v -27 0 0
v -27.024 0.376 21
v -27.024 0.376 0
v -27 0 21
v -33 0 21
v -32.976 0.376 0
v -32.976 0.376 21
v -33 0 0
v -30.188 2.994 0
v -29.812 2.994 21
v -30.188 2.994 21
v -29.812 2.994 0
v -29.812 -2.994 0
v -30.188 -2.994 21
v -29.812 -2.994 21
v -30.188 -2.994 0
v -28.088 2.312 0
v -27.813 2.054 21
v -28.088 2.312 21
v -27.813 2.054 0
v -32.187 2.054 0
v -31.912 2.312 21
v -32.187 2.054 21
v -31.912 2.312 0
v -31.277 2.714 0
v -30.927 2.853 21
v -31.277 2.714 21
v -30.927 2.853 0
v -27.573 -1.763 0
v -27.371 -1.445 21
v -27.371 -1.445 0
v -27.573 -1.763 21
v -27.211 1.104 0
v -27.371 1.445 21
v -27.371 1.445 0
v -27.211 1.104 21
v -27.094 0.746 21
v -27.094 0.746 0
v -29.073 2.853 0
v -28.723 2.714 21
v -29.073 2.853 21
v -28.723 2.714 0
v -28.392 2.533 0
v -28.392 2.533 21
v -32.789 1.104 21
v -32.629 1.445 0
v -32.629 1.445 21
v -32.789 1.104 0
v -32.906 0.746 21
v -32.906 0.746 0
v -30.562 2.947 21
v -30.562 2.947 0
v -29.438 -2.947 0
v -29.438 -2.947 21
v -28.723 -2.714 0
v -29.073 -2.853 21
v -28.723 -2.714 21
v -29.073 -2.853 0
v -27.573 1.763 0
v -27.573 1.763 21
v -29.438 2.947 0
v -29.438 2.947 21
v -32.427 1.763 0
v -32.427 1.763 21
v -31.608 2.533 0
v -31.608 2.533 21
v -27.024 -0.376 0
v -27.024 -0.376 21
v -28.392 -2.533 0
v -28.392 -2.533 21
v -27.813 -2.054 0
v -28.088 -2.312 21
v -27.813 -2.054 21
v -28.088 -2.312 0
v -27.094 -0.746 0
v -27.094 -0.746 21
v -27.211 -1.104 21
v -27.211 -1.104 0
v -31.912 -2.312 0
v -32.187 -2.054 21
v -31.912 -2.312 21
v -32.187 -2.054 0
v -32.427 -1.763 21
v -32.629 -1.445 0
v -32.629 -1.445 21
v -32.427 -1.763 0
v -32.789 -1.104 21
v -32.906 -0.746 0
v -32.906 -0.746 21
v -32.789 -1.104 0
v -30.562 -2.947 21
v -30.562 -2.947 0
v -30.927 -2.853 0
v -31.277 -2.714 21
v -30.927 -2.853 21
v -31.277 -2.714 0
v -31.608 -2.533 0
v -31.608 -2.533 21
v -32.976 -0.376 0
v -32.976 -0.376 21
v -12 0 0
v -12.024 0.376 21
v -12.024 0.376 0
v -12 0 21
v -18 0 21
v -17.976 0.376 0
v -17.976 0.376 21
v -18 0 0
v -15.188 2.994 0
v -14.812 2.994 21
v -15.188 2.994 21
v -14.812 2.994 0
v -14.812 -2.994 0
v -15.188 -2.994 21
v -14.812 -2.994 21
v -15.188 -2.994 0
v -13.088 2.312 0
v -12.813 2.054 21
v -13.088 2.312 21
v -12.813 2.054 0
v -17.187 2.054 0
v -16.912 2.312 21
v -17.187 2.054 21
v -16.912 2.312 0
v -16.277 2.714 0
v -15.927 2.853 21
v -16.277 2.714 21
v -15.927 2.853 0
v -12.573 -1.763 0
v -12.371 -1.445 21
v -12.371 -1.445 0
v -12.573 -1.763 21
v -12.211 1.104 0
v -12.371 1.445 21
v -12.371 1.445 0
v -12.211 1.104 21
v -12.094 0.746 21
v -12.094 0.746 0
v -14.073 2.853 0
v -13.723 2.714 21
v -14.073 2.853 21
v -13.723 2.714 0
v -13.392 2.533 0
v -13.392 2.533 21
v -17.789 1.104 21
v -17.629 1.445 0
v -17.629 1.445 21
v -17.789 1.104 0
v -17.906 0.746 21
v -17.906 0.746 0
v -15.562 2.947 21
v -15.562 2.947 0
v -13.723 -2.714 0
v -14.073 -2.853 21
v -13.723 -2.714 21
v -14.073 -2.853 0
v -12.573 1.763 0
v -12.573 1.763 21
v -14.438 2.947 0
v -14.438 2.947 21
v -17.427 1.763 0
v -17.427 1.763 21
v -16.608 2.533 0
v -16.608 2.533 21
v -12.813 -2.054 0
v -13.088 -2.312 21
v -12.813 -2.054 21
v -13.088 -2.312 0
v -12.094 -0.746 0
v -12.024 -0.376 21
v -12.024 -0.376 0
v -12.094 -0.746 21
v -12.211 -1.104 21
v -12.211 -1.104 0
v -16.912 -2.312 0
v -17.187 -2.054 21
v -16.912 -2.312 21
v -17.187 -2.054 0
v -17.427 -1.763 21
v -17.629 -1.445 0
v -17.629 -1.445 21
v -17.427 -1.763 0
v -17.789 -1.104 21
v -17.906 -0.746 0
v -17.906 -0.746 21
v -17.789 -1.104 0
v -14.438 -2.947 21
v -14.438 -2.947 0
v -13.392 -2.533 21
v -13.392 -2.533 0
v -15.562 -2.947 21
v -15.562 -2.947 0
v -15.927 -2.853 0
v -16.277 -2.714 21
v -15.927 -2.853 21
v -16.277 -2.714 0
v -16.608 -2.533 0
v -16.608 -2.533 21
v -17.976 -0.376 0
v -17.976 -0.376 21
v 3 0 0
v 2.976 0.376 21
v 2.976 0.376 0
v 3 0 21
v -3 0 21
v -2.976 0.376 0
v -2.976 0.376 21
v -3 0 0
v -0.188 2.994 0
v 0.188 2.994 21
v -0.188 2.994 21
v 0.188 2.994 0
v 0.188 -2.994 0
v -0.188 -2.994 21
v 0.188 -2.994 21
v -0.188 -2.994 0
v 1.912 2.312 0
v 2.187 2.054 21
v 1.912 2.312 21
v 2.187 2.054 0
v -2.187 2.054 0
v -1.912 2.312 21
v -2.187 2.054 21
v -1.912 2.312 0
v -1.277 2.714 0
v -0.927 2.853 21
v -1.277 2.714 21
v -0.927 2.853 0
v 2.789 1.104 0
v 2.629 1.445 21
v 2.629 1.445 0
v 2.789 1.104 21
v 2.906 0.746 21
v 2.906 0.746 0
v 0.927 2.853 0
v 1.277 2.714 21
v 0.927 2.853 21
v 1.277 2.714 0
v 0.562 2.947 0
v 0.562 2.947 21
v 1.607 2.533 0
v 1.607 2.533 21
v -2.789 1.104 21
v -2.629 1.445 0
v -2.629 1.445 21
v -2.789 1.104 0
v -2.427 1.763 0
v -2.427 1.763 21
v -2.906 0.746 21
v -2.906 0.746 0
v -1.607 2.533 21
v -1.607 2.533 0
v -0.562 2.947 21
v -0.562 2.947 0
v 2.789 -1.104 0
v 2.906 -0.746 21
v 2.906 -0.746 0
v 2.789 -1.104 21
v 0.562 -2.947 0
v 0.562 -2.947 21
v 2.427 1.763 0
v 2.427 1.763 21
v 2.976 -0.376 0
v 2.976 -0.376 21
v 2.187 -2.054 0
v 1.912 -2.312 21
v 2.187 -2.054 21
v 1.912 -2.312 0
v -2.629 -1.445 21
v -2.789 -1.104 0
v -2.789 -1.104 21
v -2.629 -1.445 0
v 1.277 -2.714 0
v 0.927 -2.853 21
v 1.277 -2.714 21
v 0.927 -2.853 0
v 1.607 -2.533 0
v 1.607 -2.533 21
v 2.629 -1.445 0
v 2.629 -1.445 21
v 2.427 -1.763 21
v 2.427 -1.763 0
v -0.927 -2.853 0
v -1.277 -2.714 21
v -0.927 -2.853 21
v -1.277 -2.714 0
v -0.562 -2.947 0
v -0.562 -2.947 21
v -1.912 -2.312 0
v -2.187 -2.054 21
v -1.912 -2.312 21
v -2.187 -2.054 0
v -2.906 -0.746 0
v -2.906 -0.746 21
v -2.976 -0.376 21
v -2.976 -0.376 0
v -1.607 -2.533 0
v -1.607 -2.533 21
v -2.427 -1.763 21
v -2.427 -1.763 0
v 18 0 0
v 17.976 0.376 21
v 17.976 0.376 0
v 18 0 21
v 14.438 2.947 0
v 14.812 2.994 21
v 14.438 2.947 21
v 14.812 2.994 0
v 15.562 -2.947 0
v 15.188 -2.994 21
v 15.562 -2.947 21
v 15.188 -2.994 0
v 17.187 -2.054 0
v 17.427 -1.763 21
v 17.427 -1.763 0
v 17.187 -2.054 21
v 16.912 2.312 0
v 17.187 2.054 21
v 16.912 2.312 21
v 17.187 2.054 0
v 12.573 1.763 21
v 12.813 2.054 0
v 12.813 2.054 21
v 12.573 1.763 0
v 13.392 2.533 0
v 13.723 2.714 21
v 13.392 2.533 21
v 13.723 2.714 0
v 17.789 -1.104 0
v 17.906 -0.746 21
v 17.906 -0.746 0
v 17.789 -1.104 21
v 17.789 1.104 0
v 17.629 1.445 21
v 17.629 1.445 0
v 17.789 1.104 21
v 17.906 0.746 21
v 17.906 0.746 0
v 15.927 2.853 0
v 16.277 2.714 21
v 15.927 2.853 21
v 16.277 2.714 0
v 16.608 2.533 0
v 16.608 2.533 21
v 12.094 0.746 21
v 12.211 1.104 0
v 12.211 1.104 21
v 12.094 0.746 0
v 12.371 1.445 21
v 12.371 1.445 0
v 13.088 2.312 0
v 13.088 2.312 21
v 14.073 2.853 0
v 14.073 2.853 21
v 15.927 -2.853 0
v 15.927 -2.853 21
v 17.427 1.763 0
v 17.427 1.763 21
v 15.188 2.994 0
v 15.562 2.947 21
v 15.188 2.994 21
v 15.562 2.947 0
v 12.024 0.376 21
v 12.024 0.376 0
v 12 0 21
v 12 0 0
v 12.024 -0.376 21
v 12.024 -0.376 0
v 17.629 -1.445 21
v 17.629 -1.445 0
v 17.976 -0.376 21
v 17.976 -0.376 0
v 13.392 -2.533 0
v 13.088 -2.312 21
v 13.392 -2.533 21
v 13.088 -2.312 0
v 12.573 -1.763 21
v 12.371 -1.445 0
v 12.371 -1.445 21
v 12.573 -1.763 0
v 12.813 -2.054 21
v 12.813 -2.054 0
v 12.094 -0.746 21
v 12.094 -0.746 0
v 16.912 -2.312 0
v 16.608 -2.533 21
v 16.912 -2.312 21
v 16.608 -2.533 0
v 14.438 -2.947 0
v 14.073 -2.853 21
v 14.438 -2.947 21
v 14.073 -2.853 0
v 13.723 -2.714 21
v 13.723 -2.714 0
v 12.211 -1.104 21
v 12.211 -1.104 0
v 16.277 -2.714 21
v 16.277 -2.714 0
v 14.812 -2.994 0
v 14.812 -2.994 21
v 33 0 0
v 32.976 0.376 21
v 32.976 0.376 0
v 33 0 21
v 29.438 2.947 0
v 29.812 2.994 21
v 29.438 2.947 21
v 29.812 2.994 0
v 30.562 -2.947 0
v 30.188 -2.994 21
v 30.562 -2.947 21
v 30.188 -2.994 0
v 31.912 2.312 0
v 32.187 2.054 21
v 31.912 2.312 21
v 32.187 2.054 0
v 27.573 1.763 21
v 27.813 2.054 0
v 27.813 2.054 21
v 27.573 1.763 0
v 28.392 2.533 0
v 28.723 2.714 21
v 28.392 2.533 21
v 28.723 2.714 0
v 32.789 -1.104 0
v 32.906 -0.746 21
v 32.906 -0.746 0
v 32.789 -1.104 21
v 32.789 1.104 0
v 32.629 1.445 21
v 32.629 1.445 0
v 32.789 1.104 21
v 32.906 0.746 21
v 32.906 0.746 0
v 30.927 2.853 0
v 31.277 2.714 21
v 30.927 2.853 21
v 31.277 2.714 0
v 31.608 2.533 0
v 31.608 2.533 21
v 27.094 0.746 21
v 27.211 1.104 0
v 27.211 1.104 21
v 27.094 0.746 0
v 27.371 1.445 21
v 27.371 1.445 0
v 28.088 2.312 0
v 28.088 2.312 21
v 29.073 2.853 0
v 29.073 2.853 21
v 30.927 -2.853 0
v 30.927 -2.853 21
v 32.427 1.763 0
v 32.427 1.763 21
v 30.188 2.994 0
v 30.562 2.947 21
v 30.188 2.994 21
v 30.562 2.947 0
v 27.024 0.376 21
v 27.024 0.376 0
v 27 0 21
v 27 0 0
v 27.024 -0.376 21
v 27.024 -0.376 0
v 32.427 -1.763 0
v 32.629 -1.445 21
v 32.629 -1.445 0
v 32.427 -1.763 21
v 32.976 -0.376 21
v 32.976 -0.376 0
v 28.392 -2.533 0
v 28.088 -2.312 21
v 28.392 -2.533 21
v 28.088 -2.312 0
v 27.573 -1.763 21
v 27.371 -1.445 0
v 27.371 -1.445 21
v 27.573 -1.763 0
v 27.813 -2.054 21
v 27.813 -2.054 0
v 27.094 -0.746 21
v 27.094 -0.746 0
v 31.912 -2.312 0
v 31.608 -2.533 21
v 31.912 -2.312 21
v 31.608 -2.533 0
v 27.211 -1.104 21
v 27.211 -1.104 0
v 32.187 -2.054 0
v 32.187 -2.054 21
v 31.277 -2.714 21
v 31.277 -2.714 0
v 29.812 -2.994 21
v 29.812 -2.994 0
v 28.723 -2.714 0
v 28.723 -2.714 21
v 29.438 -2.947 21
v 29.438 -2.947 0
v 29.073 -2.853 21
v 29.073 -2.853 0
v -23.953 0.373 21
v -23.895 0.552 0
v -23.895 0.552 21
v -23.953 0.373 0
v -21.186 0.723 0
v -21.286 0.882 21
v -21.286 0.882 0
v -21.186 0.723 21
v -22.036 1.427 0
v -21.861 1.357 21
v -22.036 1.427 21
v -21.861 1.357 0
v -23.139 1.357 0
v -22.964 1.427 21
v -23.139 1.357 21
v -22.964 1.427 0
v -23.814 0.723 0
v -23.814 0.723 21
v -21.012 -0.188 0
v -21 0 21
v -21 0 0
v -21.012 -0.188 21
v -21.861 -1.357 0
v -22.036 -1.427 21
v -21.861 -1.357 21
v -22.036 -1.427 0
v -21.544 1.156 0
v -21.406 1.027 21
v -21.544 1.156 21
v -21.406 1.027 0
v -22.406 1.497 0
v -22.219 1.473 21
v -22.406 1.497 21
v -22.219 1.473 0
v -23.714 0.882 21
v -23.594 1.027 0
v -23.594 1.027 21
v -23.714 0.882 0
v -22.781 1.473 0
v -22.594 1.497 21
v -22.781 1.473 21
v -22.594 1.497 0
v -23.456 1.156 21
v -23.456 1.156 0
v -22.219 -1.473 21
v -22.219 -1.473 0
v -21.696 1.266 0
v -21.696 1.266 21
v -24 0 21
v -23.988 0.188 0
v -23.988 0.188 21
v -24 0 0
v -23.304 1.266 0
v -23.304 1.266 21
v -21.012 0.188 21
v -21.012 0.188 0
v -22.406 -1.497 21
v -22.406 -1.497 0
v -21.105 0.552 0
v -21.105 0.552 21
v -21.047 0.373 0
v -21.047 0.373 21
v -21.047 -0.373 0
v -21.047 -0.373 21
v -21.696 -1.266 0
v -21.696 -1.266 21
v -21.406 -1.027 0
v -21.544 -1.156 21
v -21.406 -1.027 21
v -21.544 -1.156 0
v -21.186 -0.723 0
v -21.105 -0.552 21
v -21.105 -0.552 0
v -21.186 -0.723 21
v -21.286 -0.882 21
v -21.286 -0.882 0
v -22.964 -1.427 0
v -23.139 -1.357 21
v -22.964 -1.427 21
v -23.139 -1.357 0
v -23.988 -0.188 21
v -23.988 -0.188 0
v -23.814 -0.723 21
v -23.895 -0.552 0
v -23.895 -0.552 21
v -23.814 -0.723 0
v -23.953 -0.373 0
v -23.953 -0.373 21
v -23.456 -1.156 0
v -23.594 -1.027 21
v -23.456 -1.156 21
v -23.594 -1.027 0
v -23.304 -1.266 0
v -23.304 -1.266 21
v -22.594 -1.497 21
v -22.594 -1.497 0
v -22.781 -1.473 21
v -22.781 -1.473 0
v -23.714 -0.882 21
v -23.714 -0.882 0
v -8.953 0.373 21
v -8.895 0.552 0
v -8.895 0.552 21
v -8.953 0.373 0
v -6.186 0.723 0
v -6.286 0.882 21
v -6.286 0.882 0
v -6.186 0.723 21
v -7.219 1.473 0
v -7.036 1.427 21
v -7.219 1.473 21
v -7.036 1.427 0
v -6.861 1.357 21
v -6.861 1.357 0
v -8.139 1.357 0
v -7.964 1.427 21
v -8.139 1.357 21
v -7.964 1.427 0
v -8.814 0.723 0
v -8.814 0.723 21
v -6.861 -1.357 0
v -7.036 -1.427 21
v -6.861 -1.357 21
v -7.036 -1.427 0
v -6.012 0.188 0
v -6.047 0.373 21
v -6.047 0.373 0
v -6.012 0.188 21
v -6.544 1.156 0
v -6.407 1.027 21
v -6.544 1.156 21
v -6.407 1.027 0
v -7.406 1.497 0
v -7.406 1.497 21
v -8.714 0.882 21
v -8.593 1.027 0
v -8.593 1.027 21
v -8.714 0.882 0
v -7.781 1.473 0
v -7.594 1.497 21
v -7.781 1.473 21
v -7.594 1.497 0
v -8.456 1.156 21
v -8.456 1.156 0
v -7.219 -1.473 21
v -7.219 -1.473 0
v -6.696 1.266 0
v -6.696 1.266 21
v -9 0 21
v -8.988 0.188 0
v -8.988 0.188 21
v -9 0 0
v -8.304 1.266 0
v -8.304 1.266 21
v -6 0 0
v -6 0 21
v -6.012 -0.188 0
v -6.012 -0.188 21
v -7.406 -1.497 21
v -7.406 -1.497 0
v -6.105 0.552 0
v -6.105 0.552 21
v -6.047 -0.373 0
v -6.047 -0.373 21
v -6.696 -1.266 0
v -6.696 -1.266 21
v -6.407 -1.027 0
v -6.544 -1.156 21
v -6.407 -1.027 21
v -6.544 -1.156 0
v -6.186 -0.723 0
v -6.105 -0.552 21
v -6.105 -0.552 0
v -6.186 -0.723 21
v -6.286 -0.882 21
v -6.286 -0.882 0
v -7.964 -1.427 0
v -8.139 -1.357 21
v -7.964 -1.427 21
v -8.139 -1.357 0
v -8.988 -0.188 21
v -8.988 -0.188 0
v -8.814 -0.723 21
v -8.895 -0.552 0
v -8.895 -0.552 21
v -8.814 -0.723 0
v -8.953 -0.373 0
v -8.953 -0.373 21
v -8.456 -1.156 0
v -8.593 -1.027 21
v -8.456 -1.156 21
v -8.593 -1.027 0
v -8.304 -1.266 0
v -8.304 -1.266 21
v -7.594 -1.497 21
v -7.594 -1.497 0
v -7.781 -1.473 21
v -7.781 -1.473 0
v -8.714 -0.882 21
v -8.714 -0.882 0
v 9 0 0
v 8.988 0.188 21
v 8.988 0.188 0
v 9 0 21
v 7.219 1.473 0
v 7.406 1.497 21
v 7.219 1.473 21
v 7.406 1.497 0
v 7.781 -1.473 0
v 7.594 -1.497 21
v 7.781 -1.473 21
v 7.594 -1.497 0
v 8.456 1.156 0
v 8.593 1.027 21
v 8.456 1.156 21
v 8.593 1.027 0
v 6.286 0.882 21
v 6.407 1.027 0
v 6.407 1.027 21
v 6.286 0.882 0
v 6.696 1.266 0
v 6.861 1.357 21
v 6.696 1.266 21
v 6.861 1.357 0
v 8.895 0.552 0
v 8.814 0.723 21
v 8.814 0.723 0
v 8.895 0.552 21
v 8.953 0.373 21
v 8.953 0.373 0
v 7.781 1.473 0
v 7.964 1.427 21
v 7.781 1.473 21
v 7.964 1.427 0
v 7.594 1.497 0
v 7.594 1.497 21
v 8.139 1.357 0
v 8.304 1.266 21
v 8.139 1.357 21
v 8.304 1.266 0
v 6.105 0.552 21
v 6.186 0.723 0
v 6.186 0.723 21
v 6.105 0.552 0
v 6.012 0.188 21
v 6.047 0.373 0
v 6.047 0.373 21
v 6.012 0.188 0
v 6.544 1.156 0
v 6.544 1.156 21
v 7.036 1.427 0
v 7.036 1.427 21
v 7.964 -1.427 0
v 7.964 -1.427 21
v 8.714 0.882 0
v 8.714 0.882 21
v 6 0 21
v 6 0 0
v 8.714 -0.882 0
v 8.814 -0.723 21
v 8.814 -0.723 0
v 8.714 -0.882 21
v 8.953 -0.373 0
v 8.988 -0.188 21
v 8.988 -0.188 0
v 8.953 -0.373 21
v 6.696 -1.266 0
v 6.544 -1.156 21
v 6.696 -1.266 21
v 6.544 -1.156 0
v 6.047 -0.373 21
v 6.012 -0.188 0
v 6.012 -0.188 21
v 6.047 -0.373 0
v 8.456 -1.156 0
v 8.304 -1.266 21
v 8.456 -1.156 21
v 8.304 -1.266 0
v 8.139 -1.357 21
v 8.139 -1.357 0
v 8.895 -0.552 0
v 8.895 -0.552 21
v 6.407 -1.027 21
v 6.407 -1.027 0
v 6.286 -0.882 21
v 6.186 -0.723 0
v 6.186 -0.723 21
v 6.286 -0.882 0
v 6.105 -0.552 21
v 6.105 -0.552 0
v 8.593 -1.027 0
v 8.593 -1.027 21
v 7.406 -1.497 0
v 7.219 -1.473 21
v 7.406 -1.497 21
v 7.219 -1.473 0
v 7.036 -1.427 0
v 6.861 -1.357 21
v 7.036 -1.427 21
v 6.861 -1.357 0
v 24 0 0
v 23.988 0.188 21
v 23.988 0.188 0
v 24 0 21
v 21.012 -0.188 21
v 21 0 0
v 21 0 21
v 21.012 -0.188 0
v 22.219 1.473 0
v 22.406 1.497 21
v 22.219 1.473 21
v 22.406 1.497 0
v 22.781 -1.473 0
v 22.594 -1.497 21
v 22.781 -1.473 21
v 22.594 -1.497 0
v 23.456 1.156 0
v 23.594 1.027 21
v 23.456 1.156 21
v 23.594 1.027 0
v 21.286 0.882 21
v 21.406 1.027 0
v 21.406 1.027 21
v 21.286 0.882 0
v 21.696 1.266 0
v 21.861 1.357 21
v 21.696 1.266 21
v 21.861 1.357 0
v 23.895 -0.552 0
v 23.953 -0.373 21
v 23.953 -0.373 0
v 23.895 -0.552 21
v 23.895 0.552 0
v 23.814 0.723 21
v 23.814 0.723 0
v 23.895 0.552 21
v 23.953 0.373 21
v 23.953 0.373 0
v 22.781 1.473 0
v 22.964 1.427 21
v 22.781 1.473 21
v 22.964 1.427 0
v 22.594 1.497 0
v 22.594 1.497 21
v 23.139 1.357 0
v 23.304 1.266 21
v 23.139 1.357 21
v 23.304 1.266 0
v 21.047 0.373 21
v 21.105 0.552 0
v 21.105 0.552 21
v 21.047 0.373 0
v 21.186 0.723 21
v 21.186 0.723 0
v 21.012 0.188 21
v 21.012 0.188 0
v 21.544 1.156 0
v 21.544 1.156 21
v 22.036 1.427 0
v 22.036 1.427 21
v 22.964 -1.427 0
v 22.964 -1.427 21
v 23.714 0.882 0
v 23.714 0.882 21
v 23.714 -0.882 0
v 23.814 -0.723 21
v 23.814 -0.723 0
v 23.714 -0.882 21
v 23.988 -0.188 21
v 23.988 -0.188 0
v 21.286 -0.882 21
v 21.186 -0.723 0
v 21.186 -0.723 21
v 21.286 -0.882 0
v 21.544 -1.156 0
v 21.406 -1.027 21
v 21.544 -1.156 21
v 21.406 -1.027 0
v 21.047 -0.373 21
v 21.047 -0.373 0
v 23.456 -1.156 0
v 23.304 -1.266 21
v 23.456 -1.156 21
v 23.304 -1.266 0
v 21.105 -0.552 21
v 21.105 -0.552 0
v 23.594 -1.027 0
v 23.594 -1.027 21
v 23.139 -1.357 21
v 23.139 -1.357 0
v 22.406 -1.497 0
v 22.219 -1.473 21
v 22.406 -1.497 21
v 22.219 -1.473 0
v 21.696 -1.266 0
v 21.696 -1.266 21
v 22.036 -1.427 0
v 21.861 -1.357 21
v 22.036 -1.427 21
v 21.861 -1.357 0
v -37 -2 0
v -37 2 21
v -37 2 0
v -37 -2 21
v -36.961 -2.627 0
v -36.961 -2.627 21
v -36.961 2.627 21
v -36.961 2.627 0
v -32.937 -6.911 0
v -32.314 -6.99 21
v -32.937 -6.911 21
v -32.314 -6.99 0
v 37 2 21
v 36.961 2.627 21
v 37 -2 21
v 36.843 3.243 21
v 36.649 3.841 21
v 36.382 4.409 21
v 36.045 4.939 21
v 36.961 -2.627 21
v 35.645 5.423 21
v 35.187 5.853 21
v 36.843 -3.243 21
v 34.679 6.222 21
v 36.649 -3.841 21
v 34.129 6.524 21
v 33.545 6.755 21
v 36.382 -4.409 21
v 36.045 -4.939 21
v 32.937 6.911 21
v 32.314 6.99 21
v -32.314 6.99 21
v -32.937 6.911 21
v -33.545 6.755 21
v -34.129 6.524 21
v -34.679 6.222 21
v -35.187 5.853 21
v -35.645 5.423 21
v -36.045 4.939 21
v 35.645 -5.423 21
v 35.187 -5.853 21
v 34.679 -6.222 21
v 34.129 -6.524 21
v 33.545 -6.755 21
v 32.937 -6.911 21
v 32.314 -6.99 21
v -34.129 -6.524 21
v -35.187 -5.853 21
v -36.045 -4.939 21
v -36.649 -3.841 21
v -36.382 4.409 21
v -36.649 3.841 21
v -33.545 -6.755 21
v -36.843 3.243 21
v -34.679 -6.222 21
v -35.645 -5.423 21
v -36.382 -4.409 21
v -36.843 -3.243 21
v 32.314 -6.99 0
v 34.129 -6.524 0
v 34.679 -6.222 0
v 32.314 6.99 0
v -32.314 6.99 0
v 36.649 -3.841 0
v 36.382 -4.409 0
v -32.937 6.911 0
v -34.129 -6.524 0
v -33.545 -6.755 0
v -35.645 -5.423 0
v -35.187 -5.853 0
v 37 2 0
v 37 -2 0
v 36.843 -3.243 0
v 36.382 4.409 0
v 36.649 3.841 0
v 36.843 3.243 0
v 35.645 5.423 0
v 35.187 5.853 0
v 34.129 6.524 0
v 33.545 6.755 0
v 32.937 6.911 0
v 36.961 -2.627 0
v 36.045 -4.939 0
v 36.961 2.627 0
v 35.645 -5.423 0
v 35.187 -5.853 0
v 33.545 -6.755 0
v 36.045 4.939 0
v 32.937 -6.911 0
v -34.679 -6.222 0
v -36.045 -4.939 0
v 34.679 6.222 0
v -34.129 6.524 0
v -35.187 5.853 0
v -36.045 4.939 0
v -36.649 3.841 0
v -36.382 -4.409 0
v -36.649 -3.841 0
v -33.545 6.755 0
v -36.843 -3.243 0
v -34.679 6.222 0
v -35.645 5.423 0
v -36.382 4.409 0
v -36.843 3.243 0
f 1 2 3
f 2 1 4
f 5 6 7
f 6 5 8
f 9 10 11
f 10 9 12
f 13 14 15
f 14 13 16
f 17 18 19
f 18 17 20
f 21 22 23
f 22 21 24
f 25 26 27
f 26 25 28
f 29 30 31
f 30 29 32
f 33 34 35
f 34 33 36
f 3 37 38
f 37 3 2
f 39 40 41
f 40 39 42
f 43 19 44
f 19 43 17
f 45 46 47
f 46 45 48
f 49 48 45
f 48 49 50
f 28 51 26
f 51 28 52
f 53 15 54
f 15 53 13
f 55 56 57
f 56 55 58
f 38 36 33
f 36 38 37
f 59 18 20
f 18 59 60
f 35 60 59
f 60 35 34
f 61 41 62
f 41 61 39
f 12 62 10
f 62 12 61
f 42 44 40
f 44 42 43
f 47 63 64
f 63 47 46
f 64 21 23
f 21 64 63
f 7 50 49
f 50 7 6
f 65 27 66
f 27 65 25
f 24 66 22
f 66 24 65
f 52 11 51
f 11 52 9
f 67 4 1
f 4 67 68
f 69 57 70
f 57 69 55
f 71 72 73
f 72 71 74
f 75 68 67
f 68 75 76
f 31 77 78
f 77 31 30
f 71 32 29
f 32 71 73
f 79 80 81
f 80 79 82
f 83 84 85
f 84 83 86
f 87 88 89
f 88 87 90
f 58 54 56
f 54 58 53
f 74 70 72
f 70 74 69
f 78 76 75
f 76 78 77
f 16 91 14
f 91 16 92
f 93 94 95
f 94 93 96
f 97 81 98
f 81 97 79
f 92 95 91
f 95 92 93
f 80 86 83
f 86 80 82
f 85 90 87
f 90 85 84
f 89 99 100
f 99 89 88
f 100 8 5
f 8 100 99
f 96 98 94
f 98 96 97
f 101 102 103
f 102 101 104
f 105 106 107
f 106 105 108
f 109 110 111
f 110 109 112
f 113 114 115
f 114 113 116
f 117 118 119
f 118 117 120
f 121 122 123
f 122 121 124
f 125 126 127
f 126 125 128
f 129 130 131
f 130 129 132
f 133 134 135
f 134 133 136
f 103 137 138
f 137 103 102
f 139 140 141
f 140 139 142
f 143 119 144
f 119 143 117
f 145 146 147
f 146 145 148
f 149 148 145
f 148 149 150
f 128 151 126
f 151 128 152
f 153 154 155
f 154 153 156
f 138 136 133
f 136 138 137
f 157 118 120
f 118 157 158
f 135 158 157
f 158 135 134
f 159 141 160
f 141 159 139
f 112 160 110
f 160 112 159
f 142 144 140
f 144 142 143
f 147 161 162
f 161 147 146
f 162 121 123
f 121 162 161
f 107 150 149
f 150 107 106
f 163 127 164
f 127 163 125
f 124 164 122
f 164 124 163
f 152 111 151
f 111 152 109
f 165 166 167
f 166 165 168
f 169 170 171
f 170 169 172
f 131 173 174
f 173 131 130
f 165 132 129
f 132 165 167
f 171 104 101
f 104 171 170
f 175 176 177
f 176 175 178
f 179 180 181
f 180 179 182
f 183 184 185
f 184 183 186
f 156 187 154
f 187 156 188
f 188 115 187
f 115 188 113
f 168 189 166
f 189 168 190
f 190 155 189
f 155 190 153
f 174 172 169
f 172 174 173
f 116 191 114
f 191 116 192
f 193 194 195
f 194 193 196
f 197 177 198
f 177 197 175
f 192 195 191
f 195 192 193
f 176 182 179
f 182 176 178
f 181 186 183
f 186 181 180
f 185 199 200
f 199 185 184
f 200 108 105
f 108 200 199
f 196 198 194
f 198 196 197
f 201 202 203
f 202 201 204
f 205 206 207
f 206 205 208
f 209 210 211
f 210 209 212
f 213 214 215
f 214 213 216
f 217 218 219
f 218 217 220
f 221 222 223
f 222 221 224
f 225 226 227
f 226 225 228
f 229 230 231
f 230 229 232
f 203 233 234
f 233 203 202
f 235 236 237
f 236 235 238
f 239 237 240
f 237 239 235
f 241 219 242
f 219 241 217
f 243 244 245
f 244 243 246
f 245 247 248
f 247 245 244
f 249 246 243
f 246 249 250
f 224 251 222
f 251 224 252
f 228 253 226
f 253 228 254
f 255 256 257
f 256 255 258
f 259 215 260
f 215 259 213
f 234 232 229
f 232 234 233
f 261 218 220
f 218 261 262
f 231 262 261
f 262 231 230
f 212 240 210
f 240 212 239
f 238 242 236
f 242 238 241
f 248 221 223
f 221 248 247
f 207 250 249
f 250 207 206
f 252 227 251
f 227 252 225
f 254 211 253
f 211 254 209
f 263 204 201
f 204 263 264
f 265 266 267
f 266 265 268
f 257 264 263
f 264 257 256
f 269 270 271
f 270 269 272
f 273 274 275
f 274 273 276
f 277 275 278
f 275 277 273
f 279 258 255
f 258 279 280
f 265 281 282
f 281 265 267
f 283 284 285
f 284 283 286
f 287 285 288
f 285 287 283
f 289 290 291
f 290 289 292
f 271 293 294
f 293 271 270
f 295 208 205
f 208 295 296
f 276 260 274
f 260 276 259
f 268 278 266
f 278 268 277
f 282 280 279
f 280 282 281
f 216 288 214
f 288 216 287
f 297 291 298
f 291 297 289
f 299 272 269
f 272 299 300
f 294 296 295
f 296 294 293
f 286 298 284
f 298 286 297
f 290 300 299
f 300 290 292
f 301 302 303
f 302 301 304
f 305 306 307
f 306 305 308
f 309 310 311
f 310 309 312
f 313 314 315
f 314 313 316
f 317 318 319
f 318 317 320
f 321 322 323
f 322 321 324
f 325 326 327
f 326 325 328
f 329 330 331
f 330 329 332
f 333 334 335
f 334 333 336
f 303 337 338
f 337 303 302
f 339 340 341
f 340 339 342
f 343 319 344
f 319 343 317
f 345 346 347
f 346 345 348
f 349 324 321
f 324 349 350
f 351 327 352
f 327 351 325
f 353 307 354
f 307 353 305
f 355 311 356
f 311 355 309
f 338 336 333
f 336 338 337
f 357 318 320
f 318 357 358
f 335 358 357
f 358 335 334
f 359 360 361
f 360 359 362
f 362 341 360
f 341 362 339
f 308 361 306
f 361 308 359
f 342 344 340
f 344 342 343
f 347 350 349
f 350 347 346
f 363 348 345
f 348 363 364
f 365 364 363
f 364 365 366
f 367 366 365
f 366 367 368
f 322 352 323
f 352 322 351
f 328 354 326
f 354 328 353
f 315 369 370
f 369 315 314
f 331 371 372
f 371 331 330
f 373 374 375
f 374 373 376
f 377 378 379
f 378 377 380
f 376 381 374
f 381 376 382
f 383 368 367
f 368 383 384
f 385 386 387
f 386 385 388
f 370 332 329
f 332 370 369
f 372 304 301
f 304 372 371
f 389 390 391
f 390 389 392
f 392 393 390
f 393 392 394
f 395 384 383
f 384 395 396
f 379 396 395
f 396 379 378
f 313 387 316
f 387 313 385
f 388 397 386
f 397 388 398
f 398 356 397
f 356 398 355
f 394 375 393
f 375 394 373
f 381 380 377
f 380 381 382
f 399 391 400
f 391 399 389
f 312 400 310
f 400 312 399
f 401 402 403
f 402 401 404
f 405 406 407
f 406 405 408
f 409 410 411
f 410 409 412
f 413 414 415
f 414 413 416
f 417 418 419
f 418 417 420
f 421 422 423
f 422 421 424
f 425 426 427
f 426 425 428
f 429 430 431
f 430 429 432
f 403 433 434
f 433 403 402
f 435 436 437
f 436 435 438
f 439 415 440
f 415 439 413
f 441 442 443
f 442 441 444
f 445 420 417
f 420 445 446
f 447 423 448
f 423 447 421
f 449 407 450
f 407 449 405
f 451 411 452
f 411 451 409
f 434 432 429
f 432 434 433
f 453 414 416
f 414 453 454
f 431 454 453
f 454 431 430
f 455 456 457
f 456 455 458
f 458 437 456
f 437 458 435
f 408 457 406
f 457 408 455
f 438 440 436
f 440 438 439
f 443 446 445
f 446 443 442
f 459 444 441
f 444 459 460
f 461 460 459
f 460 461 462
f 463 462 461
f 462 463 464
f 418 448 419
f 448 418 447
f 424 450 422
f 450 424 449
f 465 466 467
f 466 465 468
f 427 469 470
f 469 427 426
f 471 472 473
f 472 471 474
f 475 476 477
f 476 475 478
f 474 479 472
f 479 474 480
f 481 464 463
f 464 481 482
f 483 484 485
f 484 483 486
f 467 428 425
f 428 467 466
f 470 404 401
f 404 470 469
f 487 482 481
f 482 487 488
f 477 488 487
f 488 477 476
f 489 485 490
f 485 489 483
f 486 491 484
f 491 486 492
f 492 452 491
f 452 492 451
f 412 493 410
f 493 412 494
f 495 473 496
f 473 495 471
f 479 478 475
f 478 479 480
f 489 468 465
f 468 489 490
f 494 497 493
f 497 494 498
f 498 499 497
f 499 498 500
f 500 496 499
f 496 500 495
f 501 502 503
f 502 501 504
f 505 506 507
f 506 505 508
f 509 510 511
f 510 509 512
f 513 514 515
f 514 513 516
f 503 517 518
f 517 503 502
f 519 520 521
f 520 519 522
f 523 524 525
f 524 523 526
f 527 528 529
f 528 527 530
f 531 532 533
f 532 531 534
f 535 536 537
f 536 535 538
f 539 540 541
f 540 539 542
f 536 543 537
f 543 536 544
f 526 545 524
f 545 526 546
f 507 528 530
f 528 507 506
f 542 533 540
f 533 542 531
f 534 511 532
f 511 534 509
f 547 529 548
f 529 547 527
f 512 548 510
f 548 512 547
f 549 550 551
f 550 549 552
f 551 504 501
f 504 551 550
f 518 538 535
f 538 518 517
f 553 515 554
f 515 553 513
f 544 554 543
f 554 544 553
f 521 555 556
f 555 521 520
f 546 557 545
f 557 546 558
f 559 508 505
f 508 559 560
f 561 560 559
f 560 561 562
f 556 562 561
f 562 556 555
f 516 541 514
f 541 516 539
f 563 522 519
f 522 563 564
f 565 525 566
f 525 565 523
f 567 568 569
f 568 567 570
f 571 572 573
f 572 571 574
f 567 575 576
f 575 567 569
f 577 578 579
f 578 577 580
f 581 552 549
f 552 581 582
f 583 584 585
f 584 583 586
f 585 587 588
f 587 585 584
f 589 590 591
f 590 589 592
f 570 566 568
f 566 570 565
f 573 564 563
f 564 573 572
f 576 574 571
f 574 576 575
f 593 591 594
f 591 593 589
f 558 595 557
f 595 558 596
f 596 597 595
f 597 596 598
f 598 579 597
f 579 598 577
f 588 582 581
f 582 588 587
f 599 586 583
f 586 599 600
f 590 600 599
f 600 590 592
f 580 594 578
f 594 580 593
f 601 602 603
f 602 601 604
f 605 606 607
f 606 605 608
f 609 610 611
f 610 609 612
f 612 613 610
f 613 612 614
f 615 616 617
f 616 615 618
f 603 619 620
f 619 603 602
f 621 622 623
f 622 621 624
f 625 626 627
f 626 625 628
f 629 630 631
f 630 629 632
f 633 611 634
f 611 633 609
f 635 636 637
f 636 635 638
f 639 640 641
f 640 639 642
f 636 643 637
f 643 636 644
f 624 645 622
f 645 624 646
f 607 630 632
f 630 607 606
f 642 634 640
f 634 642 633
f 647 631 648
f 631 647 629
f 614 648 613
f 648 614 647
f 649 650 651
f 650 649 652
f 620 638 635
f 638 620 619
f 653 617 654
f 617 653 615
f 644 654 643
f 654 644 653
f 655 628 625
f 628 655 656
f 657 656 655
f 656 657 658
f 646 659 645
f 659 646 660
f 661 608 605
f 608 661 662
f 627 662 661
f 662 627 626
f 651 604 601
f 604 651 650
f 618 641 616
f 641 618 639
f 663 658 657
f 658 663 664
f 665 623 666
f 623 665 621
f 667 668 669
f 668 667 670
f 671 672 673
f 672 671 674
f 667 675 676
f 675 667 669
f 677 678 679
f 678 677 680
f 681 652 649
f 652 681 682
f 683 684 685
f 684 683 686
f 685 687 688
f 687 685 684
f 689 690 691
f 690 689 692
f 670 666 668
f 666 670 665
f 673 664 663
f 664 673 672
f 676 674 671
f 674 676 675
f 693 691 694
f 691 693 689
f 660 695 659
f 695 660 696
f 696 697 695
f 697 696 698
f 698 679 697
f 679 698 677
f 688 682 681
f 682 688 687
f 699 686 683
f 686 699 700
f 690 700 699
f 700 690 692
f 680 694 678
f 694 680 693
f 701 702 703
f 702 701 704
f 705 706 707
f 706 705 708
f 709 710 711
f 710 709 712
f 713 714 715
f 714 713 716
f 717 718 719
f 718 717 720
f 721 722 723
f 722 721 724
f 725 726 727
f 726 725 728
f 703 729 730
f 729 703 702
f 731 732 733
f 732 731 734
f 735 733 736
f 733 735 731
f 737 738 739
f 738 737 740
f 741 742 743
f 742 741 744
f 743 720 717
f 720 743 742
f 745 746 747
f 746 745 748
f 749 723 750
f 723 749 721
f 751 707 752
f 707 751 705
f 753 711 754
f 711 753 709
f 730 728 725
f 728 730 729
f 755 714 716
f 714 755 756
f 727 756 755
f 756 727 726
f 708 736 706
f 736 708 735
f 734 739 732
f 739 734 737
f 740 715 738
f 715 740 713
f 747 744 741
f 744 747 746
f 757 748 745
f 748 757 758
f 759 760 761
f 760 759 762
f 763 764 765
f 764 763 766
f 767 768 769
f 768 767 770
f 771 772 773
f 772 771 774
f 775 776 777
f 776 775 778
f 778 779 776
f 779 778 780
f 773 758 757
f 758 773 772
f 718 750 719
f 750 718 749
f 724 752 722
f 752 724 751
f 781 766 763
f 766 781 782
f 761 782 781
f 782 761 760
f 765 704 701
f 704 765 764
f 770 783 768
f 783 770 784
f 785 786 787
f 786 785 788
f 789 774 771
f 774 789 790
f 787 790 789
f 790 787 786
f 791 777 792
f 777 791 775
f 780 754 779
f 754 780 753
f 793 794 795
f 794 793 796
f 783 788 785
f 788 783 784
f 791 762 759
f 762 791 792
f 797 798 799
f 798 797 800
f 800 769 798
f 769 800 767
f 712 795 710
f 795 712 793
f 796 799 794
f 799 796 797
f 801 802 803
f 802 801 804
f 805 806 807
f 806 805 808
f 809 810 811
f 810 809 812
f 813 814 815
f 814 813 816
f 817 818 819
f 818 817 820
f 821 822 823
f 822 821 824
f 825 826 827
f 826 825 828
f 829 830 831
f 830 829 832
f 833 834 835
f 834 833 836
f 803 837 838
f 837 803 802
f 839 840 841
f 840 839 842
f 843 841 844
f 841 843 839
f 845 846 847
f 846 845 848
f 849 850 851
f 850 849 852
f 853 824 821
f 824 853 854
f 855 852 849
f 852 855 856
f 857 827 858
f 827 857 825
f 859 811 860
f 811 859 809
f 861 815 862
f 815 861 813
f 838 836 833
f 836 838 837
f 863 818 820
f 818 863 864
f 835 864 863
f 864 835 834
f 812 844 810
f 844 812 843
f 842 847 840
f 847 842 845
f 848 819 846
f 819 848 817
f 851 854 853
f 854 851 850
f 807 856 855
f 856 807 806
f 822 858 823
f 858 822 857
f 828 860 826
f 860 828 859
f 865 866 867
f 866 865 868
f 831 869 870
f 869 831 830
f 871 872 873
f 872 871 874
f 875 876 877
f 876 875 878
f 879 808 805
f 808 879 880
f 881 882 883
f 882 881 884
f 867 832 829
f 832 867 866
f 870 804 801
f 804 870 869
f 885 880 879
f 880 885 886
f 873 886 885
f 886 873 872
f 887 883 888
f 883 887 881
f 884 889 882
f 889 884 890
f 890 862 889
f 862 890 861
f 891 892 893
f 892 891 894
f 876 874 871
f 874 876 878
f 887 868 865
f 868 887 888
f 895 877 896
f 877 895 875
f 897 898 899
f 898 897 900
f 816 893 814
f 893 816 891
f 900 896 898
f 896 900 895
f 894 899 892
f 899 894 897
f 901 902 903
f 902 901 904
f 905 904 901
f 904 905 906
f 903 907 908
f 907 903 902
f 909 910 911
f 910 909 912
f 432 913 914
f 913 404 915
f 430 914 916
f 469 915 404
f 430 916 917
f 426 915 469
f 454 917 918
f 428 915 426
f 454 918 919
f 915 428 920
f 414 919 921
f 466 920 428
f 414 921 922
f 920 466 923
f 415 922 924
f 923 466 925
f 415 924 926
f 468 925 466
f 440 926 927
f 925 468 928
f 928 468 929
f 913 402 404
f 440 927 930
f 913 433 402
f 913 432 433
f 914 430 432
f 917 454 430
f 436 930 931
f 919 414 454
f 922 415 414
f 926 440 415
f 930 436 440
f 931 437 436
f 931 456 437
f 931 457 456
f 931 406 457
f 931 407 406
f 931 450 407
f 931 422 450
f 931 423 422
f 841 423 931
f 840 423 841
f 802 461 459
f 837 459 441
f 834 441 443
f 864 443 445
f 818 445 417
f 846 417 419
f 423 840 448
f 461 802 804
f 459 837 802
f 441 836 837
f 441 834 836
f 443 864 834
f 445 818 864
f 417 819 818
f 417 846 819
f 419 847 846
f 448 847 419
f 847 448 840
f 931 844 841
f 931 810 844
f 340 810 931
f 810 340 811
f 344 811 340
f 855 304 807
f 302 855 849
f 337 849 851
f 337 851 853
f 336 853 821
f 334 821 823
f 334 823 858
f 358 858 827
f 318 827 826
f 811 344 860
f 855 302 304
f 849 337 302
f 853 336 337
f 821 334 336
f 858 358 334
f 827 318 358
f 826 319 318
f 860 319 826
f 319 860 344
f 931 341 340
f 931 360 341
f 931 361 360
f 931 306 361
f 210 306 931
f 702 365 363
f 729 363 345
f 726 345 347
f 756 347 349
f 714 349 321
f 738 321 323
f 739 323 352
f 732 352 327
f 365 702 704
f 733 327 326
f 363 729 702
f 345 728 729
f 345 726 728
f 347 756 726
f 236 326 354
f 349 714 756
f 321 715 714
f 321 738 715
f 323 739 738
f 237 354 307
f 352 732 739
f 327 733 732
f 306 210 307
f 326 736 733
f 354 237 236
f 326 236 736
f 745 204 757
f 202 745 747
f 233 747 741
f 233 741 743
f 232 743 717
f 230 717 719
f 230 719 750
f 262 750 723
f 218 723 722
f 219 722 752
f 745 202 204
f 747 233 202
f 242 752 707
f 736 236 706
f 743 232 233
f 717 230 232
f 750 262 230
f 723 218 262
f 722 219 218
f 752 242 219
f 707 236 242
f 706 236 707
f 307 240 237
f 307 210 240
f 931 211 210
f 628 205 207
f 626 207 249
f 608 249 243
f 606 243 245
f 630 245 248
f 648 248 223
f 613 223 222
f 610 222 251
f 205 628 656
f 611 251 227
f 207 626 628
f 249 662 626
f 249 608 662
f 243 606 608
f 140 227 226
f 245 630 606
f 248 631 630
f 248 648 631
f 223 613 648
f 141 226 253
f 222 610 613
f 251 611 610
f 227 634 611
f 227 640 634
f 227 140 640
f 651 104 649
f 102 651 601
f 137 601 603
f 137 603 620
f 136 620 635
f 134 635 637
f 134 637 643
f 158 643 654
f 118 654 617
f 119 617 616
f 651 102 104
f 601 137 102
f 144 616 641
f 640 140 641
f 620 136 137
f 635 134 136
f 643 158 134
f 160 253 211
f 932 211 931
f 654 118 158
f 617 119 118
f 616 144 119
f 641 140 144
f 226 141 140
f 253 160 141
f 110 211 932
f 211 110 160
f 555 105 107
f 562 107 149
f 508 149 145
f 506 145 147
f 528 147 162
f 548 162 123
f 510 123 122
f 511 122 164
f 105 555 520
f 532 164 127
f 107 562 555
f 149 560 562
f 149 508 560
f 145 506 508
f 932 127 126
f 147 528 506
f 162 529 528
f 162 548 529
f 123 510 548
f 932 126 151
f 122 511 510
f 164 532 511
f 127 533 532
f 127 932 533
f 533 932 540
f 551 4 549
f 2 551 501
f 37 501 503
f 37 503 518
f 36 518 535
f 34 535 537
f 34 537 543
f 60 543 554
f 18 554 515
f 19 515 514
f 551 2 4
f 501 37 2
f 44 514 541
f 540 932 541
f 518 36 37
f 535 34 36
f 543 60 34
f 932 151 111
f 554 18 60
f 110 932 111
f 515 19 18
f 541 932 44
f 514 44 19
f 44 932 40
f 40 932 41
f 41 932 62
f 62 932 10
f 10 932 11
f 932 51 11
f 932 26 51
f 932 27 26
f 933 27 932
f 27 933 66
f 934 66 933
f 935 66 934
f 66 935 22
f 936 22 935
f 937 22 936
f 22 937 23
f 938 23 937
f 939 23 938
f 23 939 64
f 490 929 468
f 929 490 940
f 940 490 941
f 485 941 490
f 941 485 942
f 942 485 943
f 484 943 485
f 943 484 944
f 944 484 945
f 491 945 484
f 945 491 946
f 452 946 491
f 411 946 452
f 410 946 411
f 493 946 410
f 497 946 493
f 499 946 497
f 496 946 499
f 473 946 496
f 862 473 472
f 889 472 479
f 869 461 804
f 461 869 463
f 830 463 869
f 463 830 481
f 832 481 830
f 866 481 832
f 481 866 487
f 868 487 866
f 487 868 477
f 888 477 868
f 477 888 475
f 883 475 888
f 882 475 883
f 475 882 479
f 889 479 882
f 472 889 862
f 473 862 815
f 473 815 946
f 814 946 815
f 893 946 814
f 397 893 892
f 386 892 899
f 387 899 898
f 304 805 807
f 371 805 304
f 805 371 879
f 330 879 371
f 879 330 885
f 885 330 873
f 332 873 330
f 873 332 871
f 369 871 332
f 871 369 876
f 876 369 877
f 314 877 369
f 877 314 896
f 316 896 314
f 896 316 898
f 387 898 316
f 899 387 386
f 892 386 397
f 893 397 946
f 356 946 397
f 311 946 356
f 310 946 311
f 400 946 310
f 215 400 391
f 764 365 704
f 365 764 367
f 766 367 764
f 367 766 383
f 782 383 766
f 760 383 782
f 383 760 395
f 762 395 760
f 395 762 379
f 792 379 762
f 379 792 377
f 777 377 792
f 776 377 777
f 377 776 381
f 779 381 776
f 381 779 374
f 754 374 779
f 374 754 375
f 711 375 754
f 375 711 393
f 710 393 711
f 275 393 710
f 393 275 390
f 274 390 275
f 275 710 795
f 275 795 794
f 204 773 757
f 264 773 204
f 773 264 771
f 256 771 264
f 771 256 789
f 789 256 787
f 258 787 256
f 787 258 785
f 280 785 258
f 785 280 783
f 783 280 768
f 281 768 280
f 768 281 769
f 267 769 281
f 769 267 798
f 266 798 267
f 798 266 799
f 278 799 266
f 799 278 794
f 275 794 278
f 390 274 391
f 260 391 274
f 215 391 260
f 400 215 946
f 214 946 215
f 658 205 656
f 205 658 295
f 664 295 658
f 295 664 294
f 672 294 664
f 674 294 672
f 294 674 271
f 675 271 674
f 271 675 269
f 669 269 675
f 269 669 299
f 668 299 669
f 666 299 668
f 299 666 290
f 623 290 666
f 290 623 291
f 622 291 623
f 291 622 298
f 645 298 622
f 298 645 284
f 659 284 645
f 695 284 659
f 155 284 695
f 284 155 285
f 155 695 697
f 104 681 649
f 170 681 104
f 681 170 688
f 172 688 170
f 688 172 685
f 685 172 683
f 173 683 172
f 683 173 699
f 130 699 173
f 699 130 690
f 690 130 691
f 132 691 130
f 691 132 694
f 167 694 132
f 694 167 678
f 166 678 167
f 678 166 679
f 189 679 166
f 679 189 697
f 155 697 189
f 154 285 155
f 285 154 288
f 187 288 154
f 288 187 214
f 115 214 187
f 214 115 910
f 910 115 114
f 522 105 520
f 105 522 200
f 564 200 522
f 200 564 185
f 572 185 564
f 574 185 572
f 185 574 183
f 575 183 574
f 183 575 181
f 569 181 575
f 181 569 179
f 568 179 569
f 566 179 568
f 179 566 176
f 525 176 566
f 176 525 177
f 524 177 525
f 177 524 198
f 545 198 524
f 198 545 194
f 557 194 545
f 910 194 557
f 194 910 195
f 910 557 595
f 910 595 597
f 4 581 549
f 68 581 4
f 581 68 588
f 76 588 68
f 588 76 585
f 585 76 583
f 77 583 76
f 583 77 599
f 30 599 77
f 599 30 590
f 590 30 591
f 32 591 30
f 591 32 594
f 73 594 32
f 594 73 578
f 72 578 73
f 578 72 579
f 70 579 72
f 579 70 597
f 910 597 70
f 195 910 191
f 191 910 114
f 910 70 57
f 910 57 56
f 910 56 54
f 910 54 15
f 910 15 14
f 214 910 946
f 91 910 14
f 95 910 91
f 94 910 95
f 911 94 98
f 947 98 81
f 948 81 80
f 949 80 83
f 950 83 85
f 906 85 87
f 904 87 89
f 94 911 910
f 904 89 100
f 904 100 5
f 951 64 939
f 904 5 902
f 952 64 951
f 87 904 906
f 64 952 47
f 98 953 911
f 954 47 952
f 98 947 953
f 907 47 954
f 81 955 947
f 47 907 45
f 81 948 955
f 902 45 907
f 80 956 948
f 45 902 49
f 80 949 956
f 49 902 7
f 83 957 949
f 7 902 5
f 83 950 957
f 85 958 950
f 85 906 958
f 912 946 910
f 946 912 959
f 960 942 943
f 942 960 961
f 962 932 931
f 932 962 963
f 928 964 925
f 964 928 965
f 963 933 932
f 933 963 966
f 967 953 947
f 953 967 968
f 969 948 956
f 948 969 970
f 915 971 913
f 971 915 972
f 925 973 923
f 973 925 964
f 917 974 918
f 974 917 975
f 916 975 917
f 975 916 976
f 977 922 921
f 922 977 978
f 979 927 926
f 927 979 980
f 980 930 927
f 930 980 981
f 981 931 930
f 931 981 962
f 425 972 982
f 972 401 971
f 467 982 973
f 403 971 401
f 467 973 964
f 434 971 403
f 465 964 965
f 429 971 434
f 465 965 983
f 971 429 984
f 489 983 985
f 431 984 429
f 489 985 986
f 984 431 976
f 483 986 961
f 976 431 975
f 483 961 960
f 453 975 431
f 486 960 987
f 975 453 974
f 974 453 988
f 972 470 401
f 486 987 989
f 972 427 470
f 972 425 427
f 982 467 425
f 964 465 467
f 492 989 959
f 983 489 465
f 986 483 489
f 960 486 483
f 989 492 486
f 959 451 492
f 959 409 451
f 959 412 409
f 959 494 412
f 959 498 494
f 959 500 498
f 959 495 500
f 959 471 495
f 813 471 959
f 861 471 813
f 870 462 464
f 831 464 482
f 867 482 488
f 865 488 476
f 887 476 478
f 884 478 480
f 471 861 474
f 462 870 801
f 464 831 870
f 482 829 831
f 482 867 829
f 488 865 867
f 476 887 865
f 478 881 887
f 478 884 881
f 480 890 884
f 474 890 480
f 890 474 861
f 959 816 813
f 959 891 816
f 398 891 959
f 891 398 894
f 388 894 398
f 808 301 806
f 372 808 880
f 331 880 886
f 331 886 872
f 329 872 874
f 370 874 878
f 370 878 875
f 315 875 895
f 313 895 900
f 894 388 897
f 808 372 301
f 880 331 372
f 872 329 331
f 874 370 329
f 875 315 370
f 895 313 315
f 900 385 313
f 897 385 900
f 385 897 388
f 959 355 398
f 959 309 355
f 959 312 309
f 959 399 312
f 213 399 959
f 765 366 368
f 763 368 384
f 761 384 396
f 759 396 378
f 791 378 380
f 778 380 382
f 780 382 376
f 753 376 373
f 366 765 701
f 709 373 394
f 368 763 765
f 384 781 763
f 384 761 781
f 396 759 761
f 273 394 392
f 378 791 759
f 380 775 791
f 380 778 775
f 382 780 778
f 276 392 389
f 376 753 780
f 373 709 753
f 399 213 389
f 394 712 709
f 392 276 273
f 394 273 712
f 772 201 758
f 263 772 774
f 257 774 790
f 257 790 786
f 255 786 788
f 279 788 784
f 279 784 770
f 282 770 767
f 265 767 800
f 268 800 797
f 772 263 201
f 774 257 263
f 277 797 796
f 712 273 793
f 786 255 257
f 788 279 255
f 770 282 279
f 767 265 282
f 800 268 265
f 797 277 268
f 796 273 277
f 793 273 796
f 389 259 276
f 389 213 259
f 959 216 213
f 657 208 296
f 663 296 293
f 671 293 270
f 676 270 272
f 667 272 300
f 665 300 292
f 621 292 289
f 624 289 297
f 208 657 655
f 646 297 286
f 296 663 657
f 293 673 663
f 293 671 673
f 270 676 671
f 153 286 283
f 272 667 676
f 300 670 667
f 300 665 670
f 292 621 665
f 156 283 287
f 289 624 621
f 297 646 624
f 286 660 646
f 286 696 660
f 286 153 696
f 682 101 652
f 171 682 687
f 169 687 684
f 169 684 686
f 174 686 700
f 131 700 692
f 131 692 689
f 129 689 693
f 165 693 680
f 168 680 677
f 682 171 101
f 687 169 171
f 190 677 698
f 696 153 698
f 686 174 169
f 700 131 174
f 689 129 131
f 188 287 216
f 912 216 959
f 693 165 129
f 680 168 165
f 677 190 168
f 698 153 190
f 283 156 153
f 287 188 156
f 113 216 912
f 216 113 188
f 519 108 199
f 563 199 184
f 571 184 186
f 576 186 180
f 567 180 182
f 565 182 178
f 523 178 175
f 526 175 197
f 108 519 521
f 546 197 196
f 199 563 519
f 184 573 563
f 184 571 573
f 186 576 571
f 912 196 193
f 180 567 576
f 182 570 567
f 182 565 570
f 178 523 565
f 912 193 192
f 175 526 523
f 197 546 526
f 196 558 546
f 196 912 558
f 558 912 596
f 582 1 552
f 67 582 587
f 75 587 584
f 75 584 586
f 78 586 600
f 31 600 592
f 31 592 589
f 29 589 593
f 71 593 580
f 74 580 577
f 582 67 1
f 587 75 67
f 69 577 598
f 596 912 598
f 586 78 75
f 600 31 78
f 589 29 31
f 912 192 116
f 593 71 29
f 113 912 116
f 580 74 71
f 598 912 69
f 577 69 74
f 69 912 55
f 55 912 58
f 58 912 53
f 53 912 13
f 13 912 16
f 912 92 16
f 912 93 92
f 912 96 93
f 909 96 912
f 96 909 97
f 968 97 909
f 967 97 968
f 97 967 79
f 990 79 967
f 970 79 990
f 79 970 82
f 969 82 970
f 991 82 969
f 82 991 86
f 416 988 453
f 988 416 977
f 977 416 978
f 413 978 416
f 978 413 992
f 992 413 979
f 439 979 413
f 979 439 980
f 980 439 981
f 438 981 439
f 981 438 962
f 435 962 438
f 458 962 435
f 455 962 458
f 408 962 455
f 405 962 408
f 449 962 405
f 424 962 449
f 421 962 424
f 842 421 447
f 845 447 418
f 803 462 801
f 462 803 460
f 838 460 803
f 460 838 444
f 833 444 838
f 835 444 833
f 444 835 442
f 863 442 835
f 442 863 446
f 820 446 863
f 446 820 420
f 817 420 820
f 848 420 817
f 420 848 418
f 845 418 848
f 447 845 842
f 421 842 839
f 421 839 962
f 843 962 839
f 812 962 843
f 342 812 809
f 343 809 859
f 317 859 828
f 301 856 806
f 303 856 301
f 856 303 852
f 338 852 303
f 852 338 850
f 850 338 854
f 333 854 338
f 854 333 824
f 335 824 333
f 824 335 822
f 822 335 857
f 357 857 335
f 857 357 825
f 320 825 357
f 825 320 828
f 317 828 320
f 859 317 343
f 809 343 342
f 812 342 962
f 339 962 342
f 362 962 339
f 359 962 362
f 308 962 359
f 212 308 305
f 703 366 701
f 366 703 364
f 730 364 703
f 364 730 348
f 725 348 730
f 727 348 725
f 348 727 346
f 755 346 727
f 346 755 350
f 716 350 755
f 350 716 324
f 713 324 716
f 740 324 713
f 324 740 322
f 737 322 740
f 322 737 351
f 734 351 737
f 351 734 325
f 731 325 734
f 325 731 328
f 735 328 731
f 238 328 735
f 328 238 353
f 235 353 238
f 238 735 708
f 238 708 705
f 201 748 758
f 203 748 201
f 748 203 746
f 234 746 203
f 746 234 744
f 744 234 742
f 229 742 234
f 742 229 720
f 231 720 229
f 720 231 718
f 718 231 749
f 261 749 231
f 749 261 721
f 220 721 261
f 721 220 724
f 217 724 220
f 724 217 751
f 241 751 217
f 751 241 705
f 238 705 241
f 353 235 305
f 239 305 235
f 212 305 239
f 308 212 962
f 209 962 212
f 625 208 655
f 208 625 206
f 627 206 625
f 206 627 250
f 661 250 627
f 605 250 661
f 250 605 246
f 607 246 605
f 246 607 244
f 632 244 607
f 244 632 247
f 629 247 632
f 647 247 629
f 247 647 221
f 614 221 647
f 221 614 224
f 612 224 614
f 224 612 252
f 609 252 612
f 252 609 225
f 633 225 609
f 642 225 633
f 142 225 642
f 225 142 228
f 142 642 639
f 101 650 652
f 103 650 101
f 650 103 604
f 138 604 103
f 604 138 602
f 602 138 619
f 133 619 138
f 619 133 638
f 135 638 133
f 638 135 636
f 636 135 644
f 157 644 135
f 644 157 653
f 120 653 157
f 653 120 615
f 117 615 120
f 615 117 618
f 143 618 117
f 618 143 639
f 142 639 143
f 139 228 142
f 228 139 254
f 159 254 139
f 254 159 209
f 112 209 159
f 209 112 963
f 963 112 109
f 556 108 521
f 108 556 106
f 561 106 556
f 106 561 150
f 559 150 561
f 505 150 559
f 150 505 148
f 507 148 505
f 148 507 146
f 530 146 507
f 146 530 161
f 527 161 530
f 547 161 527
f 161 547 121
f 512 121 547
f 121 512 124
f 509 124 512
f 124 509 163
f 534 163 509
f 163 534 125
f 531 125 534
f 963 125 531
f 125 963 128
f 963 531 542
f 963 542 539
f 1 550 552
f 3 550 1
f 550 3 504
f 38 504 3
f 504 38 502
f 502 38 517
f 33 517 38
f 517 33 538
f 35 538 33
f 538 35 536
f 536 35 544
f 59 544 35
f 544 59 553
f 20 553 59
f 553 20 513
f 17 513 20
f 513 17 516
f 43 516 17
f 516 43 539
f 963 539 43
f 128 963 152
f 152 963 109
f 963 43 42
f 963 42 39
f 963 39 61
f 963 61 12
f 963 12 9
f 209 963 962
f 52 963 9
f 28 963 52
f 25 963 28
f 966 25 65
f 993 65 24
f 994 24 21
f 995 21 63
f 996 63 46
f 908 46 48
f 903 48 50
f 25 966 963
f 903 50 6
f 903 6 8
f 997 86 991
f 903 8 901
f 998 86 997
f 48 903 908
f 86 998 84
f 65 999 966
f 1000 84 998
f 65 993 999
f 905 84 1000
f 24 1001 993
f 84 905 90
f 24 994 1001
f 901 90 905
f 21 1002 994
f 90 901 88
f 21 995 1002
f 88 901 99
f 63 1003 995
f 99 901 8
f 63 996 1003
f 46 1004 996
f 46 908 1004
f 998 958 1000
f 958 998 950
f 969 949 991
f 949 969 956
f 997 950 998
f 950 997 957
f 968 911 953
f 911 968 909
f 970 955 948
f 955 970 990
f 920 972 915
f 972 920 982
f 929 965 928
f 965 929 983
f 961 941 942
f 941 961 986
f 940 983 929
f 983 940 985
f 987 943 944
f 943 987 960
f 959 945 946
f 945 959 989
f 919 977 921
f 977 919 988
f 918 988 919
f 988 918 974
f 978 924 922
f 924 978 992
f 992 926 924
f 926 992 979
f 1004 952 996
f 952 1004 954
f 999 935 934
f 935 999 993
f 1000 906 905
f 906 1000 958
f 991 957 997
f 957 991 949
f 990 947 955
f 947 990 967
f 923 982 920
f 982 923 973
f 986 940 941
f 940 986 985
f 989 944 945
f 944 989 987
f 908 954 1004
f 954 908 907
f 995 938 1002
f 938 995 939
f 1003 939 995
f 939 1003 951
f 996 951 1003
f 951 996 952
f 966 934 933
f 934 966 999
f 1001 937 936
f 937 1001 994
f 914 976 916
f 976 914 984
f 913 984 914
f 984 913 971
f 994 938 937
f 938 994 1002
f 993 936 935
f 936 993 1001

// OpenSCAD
$fn = 50;


difference() {
	union() {
		*color(alpha = 1.0000000000, c = "gray") {
			translate(v = [0, 7, 0]) {
				linear_extrude(height = 1) {
					text(font = "Arial:style=Bold", halign = "center", size = 4.5000000000, text = "COMMENT plate main", valign = "center");
				}
			}
		}
		*color(alpha = 1.0000000000, c = "gray") {
			translate(v = [0, 14, 0]) {
				linear_extrude(height = 1) {
					text(font = "Arial:style=Bold", halign = "center", size = 4.5000000000, text = "COMMENT description oobb_plate_shape_p_type_21_depth_5_width_1_height_21_thickness_true_both_holes", valign = "center");
				}
			}
		}
		hull() {
			translate(v = [-32.0000000000, 2.0000000000, 0]) {
				cylinder(h = 21, r = 5);
			}
			translate(v = [32.0000000000, 2.0000000000, 0]) {
				cylinder(h = 21, r = 5);
			}
			translate(v = [-32.0000000000, -2.0000000000, 0]) {
				cylinder(h = 21, r = 5);
			}
			translate(v = [32.0000000000, -2.0000000000, 0]) {
				cylinder(h = 21, r = 5);
			}
		}
	}
	union() {
		*color(alpha = 1.0000000000, c = "gray") {
			translate(v = [0, 7, 0]) {
				linear_extrude(height = 1) {
					text(font = "Arial:style=Bold", halign = "center", size = 4.5000000000, text = "COMMENT holes main", valign = "center");
				}
			}
		}
		*color(alpha = 1.0000000000, c = "gray") {
			translate(v = [0, 14, 0]) {
				linear_extrude(height = 1) {
					text(font = "Arial:style=Bold", halign = "center", size = 4.5000000000, text = "COMMENT description oobb_holes_shape_n_type_5_width_1_height_21_thickness_true_both_holes", valign = "center");
				}
			}
		}
		translate(v = [-30.0000000000, 0.0000000000, 0]) {
			translate(v = [0, 0, -50]) {
				cylinder(h = 100, r = 3.0000000000);
			}
		}
		translate(v = [-15.0000000000, 0.0000000000, 0]) {
			translate(v = [0, 0, -50]) {
				cylinder(h = 100, r = 3.0000000000);
			}
		}
		translate(v = [0, 0, -50]) {
			cylinder(h = 100, r = 3.0000000000);
		}
		translate(v = [15.0000000000, 0.0000000000, 0]) {
			translate(v = [0, 0, -50]) {
				cylinder(h = 100, r = 3.0000000000);
			}
		}
		translate(v = [30.0000000000, 0.0000000000, 0]) {
			translate(v = [0, 0, -50]) {
				cylinder(h = 100, r = 3.0000000000);
			}
		}
		translate(v = [-30.0000000000, 0.0000000000, 0]) {
			translate(v = [0, 0, -50]) {
				cylinder(h = 100, r = 1.5000000000);
			}
		}
		translate(v = [-22.5000000000, 0.0000000000, 0]) {
			translate(v = [0, 0, -50]) {
				cylinder(h = 100, r = 1.5000000000);
			}
		}
		translate(v = [-15.0000000000, 0.0000000000, 0]) {
			translate(v = [0, 0, -50]) {
				cylinder(h = 100, r = 1.5000000000);
			}
		}
		translate(v = [-7.5000000000, 0.0000000000, 0]) {
			translate(v = [0, 0, -50]) {
				cylinder(h = 100, r = 1.5000000000);
			}
		}
		translate(v = [0, 0, -50]) {
			cylinder(h = 100, r = 1.5000000000);
		}
		translate(v = [7.5000000000, 0.0000000000, 0]) {
			translate(v = [0, 0, -50]) {
				cylinder(h = 100, r = 1.5000000000);
			}
		}
		translate(v = [15.0000000000, 0.0000000000, 0]) {
			translate(v = [0, 0, -50]) {
				cylinder(h = 100, r = 1.5000000000);
			}
		}
		translate(v = [22.5000000000, 0.0000000000, 0]) {
			translate(v = [0, 0, -50]) {
				cylinder(h = 100, r = 1.5000000000);
			}
		}
		translate(v = [30.0000000000, 0.0000000000, 0]) {
			translate(v = [0, 0, -50]) {
				cylinder(h = 100, r = 1.5000000000);
			}
		}
	}
}
